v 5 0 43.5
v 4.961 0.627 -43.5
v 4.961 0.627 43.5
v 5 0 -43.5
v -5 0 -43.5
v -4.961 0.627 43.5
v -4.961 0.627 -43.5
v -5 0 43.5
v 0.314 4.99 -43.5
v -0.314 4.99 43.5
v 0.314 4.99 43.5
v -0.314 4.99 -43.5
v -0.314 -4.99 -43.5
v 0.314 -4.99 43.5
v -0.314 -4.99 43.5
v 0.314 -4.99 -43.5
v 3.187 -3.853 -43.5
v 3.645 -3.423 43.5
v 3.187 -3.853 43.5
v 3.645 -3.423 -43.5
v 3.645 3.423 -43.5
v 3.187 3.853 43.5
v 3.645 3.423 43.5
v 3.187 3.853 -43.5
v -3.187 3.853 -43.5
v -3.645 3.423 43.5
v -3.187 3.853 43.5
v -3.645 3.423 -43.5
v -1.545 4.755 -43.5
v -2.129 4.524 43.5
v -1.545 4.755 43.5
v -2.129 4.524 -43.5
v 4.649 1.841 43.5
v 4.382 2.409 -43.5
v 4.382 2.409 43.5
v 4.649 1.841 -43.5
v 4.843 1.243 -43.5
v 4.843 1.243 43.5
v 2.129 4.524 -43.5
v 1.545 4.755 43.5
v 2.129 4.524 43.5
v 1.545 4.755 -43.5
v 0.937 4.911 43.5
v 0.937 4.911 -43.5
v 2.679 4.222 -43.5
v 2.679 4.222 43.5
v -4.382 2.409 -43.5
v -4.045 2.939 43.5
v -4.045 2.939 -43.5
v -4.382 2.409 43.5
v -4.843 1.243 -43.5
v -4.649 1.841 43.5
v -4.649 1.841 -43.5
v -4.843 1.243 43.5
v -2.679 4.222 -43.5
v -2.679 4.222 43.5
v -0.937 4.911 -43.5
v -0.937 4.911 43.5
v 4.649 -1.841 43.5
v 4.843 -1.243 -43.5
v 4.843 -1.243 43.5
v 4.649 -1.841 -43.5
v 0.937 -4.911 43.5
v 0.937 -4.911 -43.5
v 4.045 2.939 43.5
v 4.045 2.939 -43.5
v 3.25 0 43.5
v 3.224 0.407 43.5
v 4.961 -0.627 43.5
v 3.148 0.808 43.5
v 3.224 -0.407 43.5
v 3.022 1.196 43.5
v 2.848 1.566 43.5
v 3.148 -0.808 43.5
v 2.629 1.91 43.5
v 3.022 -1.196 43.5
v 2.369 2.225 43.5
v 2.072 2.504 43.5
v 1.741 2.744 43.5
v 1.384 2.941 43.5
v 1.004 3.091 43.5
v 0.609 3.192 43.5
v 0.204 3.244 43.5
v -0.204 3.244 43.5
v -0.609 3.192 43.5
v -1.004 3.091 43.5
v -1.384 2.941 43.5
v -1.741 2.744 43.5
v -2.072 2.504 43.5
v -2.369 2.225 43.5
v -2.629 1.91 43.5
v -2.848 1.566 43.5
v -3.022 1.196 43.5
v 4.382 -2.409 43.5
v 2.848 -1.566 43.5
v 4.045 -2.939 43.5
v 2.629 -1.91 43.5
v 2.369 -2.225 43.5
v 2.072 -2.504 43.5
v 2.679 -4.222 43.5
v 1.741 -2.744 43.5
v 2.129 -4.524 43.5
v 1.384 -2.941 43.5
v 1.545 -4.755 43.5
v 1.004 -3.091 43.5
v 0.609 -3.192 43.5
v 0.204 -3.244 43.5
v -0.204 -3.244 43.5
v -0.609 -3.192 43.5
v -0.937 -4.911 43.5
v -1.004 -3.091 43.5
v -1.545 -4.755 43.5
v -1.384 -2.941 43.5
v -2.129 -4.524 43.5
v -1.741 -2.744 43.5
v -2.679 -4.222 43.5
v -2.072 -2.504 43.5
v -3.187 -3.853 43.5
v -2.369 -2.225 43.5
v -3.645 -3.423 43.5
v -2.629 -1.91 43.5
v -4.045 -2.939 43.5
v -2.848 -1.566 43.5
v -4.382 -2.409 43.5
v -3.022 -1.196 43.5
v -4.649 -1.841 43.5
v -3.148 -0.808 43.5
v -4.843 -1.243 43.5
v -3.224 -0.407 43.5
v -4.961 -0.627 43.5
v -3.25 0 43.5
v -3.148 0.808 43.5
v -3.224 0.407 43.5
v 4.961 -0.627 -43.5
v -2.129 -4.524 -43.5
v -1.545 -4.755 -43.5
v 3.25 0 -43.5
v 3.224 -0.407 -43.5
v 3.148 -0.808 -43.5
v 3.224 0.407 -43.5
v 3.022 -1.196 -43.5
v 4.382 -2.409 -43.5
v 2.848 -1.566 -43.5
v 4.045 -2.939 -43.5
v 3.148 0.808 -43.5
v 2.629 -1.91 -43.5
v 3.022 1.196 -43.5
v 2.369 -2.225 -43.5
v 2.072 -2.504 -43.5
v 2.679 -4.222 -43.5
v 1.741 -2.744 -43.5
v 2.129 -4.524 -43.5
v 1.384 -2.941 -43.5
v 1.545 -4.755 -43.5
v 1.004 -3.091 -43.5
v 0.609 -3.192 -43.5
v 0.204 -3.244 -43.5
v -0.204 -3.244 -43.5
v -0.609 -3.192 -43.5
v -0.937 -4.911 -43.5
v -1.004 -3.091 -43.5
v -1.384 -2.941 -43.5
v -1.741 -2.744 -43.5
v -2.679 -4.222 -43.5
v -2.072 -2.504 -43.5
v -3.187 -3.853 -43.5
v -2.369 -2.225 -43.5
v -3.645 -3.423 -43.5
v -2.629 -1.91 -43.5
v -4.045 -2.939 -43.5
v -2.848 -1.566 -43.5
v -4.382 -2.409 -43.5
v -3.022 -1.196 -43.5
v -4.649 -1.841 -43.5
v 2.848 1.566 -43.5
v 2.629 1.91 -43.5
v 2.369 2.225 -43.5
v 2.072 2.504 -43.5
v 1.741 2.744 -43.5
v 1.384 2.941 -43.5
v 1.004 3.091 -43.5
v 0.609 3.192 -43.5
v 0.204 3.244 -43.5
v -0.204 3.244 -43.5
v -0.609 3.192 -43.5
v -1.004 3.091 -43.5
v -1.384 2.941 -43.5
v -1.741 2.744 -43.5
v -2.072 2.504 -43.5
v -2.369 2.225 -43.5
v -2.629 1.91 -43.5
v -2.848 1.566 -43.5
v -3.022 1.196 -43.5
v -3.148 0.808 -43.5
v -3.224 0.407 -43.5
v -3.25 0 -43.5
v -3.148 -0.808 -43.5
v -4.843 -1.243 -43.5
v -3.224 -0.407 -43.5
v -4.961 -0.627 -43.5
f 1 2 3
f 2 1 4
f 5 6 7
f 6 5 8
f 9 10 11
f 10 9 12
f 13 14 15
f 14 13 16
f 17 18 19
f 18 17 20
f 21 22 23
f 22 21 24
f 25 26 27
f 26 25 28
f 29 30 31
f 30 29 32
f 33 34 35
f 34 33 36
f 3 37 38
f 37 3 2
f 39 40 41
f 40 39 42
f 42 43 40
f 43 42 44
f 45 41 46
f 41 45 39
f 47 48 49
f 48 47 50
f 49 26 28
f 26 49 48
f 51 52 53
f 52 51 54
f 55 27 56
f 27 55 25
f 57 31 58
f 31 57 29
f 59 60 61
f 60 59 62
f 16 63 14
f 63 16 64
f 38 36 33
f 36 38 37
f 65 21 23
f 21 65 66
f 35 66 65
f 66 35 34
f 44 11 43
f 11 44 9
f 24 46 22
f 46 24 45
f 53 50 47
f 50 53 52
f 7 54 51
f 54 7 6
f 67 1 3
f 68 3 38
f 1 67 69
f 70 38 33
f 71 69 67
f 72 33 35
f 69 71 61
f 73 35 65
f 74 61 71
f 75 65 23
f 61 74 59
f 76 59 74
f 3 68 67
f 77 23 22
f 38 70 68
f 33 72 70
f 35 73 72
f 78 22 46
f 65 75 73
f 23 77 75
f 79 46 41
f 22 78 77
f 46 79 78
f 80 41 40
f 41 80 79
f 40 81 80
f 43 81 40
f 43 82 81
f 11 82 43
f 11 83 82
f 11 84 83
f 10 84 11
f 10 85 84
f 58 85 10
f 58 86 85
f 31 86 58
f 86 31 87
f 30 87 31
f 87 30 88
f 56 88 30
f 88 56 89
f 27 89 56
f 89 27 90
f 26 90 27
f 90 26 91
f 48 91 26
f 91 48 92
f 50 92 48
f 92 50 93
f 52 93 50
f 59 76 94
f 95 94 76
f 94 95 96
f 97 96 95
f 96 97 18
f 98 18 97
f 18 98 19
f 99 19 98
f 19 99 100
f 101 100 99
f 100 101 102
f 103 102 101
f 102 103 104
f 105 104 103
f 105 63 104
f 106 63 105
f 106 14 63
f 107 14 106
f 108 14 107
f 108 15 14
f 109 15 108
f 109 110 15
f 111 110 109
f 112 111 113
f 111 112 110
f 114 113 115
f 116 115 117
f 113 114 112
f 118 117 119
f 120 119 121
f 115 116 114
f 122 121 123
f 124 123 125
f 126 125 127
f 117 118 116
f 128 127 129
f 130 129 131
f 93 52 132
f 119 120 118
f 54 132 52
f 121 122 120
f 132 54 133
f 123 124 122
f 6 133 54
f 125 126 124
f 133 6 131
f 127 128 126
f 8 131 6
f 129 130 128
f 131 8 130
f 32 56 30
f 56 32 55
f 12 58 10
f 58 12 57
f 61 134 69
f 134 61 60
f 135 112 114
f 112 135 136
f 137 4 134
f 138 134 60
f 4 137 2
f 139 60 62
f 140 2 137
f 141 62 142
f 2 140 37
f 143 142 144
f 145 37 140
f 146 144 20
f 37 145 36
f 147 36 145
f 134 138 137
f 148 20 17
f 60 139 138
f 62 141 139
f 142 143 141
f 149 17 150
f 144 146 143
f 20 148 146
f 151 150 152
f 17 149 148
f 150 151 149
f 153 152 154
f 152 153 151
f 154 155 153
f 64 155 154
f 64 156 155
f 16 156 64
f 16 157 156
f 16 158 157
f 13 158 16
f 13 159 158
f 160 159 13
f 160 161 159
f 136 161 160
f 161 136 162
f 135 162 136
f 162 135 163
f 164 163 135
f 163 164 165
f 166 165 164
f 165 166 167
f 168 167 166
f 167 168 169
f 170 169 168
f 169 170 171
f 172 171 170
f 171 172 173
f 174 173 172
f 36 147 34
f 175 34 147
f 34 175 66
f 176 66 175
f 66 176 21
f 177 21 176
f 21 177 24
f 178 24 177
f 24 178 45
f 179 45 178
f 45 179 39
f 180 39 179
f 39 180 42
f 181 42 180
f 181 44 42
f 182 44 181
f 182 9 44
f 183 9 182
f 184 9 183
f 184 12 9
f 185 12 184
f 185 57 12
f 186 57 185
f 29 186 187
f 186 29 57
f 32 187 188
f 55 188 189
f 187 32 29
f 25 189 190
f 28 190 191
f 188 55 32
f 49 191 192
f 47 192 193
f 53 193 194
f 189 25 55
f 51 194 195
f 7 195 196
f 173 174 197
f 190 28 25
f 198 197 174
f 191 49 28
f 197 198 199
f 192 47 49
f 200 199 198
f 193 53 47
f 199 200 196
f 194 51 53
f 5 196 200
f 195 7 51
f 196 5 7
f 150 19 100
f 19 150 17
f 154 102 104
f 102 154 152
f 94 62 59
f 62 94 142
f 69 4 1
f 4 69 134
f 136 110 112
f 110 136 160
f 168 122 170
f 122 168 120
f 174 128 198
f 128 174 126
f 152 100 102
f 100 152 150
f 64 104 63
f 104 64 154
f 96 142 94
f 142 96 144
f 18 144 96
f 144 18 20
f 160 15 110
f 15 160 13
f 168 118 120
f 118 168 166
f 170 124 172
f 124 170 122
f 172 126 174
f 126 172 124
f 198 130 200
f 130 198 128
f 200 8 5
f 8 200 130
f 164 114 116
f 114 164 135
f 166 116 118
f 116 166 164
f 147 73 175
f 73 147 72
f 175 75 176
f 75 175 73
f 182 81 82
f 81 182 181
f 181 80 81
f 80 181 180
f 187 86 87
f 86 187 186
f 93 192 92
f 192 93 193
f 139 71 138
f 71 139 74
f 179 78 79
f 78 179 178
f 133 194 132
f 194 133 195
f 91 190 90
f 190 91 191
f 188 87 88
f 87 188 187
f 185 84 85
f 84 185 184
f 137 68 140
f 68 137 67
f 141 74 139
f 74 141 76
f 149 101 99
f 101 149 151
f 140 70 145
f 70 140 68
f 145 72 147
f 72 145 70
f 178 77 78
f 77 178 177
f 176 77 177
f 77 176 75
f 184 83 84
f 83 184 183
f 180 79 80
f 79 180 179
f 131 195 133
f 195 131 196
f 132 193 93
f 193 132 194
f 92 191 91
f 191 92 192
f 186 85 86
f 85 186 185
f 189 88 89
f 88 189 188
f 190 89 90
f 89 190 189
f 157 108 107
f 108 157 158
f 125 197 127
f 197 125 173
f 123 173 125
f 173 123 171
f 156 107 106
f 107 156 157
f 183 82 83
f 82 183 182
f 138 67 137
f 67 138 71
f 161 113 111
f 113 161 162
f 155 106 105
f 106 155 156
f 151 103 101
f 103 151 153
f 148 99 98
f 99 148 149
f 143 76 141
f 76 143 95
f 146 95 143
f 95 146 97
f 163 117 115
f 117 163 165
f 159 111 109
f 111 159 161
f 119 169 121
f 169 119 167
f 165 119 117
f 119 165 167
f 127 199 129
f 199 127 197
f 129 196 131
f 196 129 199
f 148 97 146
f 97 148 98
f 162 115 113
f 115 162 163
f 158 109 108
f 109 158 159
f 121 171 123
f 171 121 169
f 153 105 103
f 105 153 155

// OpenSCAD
$fn = 50;


difference() {
	union() {
		translate(v = [0, 0, -43.5000000000]) {
			cylinder(h = 87, r = 5.0000000000);
		}
	}
	union() {
		translate(v = [0, 0, -100.0000000000]) {
			cylinder(h = 200, r = 3.2500000000);
		}
	}
}
